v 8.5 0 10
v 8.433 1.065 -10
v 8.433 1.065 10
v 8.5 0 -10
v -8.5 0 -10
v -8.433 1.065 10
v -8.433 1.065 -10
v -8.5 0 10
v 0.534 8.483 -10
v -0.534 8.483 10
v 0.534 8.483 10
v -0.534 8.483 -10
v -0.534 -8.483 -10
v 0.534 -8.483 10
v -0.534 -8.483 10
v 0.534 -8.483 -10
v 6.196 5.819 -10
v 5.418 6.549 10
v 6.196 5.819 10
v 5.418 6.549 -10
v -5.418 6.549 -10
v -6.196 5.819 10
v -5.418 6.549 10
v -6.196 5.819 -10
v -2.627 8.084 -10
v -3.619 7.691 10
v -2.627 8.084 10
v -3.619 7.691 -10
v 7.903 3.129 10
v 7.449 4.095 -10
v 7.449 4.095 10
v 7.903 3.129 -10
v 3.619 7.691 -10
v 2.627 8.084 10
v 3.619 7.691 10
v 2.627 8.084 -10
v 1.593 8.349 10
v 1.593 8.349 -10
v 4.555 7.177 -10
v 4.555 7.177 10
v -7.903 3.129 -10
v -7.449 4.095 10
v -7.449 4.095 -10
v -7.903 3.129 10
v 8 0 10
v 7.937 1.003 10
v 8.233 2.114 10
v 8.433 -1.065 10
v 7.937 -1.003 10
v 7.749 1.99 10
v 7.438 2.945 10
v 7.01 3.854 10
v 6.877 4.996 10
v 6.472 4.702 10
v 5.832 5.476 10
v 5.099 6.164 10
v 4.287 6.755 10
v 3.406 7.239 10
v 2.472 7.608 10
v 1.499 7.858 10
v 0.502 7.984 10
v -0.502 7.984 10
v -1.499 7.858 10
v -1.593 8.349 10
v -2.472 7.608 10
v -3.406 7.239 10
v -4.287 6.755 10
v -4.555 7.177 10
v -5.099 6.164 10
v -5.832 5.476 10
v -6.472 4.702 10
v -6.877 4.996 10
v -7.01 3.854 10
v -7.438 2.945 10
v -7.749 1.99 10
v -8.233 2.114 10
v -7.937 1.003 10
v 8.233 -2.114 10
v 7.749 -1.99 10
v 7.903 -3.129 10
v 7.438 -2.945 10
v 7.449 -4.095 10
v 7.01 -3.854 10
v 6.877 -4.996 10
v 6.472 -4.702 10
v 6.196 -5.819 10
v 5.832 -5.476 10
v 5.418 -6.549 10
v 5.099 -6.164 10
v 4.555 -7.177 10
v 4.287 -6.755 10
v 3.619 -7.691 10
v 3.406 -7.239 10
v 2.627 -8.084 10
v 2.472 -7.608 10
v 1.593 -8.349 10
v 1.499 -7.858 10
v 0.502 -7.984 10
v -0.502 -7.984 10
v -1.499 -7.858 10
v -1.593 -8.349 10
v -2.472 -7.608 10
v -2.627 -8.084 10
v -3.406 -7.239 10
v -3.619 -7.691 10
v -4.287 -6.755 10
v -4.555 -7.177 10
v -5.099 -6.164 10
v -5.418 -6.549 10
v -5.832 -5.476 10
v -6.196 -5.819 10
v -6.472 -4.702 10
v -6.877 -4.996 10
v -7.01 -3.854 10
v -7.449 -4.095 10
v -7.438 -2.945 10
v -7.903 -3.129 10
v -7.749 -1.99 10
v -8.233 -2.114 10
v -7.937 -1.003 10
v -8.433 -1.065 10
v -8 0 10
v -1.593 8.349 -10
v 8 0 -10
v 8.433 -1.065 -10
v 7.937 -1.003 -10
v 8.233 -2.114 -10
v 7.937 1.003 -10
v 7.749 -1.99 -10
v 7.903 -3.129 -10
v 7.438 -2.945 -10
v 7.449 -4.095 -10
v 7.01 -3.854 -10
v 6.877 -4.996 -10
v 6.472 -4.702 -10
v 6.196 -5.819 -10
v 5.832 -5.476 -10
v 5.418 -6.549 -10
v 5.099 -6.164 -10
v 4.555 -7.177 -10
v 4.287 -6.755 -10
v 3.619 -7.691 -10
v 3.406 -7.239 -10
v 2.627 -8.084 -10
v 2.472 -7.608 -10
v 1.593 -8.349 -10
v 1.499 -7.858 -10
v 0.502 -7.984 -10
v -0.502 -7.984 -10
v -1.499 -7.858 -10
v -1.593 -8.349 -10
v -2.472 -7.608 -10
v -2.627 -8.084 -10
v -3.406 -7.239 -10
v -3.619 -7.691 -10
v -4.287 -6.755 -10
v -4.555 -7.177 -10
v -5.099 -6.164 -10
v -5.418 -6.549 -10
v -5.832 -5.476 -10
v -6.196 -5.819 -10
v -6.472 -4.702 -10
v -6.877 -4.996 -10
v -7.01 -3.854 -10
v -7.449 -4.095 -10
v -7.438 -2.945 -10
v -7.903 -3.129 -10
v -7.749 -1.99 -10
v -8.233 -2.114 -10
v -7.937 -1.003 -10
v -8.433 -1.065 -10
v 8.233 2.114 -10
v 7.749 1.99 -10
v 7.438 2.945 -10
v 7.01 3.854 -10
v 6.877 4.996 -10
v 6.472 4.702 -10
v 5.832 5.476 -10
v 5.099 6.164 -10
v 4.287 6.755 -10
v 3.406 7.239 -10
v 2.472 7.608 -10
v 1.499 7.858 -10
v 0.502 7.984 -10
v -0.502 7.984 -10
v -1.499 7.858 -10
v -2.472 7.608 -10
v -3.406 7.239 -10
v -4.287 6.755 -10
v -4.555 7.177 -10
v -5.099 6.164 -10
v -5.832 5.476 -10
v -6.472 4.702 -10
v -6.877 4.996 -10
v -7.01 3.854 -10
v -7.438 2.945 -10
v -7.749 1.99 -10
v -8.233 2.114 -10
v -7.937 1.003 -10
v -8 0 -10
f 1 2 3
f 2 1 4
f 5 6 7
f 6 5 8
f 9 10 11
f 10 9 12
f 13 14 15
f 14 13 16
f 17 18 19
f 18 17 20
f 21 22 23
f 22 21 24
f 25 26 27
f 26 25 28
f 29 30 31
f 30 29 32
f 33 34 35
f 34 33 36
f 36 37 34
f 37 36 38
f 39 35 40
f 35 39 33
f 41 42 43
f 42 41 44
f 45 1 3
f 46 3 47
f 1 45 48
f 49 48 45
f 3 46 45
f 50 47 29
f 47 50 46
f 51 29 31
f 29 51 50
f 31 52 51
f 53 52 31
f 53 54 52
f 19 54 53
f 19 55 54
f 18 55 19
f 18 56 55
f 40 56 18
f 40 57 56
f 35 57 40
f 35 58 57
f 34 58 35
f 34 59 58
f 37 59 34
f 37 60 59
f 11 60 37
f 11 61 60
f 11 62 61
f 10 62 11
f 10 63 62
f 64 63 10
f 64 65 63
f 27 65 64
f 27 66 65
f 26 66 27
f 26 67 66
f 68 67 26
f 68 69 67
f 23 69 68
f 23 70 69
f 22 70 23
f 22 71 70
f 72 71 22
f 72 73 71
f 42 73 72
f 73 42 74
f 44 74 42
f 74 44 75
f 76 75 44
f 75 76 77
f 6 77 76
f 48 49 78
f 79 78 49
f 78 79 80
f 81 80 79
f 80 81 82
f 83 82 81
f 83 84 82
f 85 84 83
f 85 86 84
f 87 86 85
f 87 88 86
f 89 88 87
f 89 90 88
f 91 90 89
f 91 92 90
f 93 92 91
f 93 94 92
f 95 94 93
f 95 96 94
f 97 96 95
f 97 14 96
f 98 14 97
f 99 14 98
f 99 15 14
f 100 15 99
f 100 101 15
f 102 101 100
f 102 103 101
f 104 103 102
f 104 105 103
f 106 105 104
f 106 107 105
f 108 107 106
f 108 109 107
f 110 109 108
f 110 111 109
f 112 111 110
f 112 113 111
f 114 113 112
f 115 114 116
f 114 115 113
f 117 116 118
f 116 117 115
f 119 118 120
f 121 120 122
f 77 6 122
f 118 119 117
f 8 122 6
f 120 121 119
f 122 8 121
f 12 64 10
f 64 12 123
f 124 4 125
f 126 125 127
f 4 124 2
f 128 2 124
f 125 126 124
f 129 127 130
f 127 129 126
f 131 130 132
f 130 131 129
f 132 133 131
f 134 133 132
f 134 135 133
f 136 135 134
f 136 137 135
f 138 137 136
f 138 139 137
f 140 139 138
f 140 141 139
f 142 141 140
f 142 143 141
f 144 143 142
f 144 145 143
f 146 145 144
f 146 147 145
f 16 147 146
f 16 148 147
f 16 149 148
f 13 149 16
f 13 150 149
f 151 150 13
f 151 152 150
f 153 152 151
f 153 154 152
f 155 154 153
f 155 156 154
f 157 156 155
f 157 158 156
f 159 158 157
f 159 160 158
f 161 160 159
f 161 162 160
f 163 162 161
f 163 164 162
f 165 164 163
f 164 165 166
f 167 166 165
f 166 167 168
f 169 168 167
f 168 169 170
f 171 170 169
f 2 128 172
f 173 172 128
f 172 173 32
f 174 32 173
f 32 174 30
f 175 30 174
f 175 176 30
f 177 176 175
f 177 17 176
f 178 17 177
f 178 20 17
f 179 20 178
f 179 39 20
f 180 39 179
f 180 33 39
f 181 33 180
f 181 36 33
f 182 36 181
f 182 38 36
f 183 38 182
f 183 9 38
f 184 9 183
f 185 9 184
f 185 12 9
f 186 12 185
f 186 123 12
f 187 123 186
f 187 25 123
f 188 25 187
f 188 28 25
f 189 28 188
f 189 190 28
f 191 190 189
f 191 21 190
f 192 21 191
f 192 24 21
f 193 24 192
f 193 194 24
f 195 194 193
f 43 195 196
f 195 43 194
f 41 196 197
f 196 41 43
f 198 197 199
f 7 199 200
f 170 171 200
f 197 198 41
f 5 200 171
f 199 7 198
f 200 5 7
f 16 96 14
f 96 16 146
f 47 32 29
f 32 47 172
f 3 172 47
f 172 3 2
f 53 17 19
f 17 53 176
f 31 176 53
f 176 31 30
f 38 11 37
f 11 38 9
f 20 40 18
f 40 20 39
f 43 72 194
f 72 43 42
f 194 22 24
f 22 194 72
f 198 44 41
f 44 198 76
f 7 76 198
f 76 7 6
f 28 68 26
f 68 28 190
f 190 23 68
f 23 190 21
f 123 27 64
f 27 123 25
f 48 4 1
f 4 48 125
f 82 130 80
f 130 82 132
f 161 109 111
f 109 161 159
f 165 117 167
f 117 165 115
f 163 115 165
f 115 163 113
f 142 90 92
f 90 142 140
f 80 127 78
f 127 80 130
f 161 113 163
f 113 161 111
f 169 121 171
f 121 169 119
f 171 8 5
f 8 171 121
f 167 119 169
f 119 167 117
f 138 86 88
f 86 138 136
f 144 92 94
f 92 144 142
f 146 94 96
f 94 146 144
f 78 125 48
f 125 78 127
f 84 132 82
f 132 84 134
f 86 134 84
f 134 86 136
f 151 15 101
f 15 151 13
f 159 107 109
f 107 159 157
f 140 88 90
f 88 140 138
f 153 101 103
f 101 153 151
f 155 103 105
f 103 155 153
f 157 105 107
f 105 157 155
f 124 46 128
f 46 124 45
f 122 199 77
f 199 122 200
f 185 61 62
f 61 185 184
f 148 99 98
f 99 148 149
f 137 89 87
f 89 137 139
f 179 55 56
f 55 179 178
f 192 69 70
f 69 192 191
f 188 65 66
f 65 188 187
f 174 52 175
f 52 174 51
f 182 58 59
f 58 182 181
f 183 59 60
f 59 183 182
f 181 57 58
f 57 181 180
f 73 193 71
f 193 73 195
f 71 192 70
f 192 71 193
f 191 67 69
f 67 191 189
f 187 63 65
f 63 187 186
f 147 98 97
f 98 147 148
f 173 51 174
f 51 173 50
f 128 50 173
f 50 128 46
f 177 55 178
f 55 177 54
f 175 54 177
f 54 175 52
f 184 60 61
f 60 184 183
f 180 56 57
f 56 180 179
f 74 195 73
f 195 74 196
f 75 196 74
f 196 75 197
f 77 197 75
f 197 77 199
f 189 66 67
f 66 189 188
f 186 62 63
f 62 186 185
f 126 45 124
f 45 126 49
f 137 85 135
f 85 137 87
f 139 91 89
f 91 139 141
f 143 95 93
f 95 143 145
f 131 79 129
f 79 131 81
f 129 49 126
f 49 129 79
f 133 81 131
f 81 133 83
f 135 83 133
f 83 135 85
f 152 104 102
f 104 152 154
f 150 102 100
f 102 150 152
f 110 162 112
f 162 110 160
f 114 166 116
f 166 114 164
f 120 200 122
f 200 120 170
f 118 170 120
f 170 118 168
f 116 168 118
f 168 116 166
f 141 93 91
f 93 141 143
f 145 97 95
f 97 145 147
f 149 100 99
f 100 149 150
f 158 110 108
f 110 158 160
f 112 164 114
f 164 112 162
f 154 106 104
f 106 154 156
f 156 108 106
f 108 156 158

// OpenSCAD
$fn = 50;


difference() {
	union() {
		translate(v = [0, 0, -10.0000000000]) {
			cylinder(h = 20, r = 8.5000000000);
		}
	}
	union() {
		translate(v = [0, 0, -100.0000000000]) {
			cylinder(h = 200, r = 8);
		}
	}
}
